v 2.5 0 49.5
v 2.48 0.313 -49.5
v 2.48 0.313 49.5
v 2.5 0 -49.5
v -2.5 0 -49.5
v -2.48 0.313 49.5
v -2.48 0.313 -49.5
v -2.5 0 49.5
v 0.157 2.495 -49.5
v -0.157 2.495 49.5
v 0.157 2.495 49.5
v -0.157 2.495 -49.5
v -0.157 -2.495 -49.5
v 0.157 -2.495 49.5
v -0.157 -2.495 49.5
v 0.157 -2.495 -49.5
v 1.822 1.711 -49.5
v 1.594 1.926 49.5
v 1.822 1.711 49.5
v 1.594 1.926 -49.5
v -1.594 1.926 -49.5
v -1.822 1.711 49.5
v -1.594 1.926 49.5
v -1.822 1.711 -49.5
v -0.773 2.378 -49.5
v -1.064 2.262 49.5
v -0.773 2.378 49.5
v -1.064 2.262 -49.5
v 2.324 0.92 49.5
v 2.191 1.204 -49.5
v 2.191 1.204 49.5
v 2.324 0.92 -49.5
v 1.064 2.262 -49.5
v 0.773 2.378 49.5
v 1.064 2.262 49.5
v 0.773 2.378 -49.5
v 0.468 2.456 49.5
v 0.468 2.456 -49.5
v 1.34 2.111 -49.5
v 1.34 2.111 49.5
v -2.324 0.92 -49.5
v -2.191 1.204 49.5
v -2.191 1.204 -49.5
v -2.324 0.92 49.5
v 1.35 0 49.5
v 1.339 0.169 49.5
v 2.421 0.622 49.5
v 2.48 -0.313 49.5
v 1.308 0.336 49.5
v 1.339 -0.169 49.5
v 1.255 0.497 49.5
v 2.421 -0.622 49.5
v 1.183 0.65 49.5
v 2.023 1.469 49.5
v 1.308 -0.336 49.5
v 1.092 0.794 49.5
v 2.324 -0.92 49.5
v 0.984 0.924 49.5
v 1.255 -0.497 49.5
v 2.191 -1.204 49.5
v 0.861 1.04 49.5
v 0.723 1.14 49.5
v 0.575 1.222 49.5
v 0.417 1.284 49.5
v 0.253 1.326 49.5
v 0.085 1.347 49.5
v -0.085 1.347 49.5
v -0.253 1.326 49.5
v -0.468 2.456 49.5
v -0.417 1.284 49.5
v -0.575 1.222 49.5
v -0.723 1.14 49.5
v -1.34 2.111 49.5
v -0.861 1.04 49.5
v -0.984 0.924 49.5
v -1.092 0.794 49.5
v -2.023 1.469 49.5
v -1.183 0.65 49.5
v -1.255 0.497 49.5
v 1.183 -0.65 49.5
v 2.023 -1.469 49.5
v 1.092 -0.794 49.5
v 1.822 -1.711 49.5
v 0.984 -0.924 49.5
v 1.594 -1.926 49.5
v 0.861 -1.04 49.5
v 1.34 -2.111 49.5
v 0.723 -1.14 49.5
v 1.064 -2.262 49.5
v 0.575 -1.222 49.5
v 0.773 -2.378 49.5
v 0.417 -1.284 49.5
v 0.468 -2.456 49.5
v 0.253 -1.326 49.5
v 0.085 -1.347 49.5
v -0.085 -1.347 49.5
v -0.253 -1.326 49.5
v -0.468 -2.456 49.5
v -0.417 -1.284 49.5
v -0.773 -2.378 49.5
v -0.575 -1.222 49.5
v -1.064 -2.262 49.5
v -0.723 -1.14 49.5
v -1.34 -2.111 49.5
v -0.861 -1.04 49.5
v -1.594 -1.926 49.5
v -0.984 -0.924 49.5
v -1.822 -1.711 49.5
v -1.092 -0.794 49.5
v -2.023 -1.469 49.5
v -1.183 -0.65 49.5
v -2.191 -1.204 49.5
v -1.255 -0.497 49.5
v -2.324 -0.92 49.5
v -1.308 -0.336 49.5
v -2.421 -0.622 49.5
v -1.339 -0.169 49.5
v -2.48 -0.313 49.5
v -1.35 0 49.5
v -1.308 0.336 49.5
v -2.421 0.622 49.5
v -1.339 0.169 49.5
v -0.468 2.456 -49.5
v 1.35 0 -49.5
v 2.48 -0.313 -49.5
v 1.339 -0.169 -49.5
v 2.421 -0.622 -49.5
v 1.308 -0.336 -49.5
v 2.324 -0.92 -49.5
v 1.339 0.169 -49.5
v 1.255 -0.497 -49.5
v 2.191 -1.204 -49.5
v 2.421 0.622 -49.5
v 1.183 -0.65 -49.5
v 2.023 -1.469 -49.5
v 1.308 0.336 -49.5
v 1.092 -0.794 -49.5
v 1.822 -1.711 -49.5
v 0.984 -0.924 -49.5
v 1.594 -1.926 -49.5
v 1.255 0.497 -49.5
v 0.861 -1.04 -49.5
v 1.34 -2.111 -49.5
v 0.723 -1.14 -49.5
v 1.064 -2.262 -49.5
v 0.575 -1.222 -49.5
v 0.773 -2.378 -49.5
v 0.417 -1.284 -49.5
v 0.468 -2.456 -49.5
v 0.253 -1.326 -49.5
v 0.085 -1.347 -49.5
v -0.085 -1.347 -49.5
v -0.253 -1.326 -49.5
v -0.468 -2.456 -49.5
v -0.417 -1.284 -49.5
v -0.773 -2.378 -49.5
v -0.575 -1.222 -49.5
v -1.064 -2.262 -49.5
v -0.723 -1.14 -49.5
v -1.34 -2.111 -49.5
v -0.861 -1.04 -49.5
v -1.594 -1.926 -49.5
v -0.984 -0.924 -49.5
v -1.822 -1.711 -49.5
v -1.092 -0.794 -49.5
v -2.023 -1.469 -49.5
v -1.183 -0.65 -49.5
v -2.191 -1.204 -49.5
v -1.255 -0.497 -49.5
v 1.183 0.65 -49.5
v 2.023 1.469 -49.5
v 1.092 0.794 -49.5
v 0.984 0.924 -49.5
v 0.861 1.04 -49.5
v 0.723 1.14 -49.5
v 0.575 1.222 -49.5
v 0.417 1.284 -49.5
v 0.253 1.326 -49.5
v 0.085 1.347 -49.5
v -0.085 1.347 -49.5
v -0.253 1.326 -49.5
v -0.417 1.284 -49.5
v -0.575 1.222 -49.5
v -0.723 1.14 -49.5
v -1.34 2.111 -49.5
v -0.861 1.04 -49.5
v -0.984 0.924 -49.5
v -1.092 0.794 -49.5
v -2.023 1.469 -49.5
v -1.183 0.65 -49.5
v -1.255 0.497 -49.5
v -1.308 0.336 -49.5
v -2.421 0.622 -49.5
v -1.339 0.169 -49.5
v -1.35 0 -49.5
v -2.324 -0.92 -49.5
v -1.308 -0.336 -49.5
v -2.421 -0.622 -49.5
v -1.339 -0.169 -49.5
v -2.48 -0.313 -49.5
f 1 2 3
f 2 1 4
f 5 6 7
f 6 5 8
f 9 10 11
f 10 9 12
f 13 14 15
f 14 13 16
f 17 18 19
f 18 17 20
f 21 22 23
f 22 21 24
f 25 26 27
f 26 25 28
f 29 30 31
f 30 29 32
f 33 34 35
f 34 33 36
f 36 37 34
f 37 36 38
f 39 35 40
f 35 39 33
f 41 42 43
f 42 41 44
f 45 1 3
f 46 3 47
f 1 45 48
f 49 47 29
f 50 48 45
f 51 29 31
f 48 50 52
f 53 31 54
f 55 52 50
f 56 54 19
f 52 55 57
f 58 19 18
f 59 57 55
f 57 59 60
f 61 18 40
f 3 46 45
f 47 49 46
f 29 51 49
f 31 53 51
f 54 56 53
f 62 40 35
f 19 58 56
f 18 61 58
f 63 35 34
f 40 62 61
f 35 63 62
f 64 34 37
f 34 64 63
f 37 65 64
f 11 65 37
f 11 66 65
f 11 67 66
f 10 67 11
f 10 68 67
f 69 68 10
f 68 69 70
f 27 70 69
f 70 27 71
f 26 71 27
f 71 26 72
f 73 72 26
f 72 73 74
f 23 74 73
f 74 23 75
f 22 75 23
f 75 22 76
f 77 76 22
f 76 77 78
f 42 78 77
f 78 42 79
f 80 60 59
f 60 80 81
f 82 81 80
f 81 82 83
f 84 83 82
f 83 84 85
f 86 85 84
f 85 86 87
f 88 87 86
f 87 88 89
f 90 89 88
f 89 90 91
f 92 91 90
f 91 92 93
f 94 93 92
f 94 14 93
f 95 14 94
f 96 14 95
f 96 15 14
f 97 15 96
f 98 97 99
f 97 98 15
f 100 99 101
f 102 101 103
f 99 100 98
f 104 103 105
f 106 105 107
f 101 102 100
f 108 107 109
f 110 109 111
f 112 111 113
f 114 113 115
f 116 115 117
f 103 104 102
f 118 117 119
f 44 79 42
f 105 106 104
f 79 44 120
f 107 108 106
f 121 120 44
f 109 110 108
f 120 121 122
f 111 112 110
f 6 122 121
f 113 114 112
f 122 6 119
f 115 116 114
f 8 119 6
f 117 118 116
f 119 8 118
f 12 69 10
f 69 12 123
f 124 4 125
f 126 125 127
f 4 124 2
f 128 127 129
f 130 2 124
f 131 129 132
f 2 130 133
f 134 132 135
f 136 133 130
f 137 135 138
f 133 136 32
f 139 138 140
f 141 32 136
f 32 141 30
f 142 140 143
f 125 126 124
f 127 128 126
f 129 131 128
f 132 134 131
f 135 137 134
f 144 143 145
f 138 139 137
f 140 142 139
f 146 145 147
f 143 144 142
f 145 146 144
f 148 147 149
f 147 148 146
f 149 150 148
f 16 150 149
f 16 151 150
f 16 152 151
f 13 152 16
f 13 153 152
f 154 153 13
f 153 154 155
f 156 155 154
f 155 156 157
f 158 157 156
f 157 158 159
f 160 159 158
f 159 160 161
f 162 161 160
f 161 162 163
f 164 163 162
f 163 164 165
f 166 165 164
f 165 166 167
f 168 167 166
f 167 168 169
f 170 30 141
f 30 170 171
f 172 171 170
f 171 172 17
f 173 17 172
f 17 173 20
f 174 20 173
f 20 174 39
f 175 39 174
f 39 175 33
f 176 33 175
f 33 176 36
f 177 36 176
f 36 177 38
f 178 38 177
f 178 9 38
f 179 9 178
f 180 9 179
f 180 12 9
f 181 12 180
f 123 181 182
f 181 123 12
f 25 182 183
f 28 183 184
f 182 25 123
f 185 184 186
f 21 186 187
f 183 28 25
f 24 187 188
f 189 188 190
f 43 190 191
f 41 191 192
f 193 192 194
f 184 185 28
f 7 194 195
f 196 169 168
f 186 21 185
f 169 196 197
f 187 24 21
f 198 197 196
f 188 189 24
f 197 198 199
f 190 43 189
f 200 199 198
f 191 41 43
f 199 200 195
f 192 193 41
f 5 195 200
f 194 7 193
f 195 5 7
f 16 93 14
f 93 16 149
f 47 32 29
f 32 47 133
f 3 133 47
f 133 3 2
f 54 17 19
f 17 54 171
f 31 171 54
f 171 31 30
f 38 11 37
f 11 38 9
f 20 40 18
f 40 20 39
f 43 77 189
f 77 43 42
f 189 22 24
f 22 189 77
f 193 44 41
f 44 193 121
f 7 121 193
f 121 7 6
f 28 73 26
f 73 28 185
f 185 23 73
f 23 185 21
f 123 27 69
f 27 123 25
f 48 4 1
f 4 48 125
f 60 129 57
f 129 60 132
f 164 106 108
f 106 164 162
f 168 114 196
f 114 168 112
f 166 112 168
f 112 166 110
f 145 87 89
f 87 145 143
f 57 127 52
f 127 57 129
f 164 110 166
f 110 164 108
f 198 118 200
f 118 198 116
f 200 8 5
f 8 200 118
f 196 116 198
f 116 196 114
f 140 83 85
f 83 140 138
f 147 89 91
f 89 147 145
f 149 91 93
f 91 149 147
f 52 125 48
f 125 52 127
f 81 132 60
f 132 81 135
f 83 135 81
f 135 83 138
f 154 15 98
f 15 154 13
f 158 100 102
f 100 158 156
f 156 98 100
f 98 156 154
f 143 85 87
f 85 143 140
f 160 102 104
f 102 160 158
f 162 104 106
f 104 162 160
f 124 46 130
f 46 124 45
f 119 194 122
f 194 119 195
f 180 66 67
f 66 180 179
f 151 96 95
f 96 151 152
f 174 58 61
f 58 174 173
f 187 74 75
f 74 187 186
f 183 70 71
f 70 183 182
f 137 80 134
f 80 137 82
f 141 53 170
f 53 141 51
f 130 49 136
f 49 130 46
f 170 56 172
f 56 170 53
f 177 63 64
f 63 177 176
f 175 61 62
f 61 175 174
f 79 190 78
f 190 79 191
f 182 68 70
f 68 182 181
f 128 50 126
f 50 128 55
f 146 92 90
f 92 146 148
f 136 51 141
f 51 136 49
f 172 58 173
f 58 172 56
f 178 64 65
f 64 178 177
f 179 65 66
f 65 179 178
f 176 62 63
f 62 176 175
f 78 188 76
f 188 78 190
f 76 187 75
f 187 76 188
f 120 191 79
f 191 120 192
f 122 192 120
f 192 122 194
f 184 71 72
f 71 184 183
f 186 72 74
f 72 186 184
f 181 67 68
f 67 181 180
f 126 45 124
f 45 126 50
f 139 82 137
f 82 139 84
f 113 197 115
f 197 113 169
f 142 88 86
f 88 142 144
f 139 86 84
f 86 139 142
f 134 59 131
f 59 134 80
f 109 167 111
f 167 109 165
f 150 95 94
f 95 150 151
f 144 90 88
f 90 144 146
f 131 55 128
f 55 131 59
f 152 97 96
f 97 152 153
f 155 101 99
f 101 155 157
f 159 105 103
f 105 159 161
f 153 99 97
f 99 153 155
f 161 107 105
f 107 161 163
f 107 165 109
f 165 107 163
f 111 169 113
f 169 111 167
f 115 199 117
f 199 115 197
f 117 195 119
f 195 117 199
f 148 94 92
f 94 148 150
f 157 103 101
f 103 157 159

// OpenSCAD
$fn = 50;


difference() {
	union() {
		translate(v = [0, 0, -49.5000000000]) {
			cylinder(h = 99, r = 2.5000000000);
		}
	}
	union() {
		translate(v = [0, 0, -100.0000000000]) {
			cylinder(h = 200, r = 1.3500000000);
		}
	}
}
